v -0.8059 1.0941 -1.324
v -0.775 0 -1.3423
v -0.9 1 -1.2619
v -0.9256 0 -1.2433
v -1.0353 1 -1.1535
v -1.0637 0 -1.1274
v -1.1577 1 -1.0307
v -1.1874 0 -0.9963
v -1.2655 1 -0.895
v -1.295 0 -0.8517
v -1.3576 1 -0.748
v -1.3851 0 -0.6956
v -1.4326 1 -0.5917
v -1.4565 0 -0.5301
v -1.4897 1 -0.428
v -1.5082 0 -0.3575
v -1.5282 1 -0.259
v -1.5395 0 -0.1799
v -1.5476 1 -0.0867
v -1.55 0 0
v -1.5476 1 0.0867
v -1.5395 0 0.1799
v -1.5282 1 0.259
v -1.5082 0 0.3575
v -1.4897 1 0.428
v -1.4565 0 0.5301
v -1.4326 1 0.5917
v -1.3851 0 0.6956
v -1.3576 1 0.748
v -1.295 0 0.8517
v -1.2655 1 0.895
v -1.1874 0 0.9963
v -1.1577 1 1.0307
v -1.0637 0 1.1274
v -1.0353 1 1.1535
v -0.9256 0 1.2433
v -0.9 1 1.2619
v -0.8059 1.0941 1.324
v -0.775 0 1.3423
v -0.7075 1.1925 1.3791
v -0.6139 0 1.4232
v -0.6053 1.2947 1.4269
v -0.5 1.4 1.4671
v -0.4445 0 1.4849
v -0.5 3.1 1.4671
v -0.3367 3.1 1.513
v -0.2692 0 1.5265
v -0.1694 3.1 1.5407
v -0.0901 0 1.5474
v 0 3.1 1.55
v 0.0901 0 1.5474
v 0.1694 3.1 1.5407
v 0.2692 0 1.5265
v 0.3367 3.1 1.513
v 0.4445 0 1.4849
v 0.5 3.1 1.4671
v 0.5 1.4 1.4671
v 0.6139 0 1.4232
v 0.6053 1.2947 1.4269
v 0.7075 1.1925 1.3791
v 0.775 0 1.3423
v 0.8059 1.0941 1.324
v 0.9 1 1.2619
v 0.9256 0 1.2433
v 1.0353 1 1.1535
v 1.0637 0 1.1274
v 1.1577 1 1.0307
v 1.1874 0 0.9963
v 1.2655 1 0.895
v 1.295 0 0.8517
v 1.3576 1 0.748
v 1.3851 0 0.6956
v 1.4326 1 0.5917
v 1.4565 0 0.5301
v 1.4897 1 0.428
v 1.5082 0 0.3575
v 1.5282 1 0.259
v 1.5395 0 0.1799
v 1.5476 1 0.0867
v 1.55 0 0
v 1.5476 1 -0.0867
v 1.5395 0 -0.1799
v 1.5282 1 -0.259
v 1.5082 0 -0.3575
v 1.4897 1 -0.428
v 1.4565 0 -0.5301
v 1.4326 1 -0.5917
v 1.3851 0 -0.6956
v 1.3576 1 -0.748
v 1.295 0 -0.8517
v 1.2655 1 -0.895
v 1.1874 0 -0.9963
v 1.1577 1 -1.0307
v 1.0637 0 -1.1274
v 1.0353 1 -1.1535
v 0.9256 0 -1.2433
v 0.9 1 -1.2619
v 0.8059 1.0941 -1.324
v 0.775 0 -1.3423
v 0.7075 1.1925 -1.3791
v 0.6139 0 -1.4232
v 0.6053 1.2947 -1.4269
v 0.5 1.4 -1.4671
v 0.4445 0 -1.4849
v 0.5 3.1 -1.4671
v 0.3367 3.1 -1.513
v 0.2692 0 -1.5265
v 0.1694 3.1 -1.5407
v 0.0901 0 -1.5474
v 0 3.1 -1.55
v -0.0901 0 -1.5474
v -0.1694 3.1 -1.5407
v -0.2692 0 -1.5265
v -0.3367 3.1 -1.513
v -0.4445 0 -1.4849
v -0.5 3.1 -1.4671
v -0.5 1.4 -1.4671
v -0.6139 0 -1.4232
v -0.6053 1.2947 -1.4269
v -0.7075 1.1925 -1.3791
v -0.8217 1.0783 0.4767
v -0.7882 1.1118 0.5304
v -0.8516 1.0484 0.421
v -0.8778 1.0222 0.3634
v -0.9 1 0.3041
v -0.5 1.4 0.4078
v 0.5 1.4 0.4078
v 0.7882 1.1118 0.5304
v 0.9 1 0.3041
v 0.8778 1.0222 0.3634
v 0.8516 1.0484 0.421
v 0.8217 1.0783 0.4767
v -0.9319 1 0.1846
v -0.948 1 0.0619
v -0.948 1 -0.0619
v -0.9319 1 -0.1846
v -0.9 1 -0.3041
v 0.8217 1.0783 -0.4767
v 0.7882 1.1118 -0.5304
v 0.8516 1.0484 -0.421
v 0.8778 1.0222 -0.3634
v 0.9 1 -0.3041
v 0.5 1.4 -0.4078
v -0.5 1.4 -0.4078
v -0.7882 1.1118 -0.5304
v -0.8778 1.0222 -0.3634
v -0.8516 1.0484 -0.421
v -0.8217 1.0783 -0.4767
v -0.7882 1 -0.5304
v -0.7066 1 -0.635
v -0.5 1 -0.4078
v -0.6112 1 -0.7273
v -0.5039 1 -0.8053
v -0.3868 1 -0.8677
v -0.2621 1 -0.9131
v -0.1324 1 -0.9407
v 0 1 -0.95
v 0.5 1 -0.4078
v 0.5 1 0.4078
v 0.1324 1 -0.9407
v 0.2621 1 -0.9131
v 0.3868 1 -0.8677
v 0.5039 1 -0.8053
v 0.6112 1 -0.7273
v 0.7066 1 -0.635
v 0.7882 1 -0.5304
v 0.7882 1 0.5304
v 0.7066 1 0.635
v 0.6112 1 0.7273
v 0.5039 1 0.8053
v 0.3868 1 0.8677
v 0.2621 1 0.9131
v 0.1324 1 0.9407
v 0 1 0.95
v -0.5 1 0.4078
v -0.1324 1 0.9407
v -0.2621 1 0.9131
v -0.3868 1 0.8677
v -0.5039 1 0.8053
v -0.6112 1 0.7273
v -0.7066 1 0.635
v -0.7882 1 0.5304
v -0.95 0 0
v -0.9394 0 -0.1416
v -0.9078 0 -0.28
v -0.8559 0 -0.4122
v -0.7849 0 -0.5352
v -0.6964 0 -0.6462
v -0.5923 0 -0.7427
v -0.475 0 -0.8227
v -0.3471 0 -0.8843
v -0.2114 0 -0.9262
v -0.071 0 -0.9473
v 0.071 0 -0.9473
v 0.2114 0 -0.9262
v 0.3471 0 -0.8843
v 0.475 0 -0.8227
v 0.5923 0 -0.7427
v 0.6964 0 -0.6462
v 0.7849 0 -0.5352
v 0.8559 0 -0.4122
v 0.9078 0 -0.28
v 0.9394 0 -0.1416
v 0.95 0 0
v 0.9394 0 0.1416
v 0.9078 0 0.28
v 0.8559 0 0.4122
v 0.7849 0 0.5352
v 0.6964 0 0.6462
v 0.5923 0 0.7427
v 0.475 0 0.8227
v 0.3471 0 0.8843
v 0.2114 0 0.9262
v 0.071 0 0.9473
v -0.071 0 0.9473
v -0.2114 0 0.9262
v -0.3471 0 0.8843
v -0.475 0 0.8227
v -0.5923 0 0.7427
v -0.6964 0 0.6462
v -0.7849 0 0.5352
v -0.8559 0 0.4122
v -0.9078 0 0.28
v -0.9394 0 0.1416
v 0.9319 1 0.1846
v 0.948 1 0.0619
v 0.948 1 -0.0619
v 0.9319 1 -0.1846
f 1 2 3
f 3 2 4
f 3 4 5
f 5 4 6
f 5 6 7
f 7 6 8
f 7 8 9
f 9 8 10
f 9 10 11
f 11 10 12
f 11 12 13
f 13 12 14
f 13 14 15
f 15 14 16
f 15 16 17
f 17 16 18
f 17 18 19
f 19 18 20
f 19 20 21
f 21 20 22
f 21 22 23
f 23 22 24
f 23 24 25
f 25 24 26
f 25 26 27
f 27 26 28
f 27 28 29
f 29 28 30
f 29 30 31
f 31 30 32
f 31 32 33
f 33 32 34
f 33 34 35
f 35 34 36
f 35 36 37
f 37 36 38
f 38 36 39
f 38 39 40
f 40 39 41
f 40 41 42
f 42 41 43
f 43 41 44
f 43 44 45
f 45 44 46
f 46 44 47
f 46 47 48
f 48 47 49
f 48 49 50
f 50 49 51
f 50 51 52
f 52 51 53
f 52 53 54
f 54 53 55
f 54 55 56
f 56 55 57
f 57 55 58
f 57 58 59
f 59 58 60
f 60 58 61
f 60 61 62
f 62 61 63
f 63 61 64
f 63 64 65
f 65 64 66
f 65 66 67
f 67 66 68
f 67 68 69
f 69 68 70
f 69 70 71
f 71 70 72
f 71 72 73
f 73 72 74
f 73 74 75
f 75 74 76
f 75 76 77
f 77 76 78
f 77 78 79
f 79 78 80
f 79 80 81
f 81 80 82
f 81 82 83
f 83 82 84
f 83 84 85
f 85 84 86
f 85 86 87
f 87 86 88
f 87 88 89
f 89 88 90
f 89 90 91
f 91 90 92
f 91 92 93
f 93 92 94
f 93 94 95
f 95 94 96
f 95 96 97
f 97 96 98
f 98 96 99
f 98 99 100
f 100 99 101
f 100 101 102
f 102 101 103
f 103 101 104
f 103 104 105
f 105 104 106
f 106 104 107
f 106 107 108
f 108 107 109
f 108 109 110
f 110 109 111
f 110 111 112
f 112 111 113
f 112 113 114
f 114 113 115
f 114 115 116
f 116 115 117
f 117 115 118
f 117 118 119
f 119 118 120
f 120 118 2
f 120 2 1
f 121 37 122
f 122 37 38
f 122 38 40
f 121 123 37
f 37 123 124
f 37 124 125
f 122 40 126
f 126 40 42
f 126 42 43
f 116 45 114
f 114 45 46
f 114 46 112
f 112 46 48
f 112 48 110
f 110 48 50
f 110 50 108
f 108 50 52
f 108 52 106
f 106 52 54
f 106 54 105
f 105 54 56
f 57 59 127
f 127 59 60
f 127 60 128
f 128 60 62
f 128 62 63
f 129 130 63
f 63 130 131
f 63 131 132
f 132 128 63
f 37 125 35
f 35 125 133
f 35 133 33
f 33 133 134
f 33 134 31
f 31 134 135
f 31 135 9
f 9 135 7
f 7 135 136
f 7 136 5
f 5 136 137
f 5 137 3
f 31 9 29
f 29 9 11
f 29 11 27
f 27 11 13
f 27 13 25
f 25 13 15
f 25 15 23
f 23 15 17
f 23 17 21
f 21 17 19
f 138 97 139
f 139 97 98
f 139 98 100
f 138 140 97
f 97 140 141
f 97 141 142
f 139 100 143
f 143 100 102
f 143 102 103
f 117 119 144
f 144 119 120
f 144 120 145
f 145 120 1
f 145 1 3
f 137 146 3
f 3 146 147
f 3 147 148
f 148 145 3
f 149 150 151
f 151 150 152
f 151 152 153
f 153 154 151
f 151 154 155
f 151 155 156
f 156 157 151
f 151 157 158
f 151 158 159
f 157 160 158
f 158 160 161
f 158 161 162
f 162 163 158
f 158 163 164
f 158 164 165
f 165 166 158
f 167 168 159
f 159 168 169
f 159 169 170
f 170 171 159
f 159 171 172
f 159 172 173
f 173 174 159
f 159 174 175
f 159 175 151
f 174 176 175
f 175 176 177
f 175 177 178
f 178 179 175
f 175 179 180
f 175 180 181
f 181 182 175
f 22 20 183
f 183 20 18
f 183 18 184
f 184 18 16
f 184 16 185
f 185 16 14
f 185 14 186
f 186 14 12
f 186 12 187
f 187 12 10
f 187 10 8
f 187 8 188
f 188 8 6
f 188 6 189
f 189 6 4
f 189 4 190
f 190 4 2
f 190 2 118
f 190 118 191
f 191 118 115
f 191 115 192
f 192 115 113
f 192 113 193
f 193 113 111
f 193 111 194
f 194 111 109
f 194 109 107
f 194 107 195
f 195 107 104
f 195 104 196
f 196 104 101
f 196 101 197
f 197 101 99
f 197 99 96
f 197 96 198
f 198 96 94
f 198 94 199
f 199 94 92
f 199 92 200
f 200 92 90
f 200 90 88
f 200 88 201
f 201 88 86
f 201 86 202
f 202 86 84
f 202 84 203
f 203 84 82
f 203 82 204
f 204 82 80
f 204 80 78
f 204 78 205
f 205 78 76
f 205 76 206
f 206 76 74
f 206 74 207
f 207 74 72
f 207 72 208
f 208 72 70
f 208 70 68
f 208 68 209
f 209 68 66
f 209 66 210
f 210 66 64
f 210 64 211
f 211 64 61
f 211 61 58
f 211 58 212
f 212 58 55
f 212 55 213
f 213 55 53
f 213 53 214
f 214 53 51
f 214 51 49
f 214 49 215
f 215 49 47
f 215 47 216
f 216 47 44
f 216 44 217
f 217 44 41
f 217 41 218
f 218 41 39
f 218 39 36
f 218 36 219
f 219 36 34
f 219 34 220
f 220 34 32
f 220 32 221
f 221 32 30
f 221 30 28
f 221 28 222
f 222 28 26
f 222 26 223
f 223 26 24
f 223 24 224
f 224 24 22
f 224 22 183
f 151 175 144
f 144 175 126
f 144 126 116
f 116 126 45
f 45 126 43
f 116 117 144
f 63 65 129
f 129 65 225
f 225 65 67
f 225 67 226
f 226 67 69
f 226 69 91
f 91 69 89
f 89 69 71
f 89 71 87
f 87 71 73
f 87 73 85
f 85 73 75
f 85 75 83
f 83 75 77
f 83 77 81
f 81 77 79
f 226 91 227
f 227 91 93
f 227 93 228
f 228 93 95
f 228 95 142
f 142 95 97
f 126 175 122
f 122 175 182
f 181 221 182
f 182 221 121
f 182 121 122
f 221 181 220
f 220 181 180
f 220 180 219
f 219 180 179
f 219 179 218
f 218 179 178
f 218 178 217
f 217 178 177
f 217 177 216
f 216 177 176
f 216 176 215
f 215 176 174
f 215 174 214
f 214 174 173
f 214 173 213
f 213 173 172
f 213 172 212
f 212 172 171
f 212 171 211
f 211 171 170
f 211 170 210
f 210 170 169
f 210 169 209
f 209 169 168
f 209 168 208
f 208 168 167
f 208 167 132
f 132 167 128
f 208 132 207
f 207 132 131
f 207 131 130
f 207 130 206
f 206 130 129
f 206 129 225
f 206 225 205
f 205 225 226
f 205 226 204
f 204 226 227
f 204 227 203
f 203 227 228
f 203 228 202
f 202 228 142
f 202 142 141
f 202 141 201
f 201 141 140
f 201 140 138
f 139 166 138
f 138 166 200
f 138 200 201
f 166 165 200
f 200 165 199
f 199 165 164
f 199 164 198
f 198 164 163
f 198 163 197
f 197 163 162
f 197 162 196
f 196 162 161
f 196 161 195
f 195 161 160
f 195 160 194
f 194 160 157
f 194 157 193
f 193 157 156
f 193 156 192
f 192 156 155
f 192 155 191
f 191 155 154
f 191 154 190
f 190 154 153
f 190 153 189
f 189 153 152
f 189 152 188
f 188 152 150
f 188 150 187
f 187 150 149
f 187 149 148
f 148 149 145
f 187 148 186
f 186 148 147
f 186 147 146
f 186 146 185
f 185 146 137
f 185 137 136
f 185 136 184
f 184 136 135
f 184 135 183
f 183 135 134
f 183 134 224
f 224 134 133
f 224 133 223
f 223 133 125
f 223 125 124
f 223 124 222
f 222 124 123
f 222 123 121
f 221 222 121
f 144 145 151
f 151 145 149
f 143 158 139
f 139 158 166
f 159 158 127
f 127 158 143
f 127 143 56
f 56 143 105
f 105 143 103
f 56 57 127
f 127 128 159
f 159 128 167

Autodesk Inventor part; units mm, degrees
ref_plane "YZ Plane" through (0, 0, 0) normal (1, 0, 0) x (0, 1, 0)
ref_plane "XZ Plane" through (0, 0, 0) normal (0, 1, 0) x (-1, 0, 0)
ref_plane "XY Plane" through (0, 0, 0) normal (0, 0, 1) x (1, 0, 0)
sketch "스케치2" plane through (0, 0, 0) normal (0, 1, 0) x (-1, 0, 0)
  circle A0 centre (0, 0) radius 1.55
  circle A1 centre (0, 0) radius 0.95
  dimension "d0" = 3.1
  dimension "d6" = 1.9
extrude "돌출1" add sketch "스케치2" along normal blind 1
sketch "스케치4" plane through (0, 1, 0) normal (0, 1, 0) x (1, 0, 0)
  line L0 (0.5, -1.55) -> (-0.5, -1.55)
  line L1 (-0.5, -1.55) -> (-0.5, 1.55)
  line L2 (-0.5, 1.55) -> (0.5, 1.55)
  line L3 (0.5, 1.55) -> (0.5, -1.55)
  line L4 (0.5, -1.55) -> (-0.5, 1.55) construction
  line L5 (-0.5, -1.55) -> (0.5, 1.55) construction
  circle A0 centre (0, 0) radius 1.55 projected
  point P0 (0.5, 1.4671)
  point P1 (-0.5, 1.4671)
  point P2 (-0.5, -1.4671)
  point P3 (0.5, -1.4671)
  dimension "d7" = 1
extrude "돌출3" add sketch "스케치4" along normal blind 2.1 contours A0 L1 L3
chamfer "모따기1" distance 0.4 angle 45 4 edges at (0.5, 1, 1.1375) (0.5, 1, -1.1375) (-0.5, 1, -1.1375) (-0.5, 1, 1.1375)
chamfer "모따기2" distance 0.4 angle 45 4 edges at (-0.5, 1.2, -0.8078) (-0.5, 1.2, 0.8078) (0.5, 1.2, 0.8078) (0.5, 1.2, -0.8078)
properties part number "bone_attachment_3.1mm_test"
